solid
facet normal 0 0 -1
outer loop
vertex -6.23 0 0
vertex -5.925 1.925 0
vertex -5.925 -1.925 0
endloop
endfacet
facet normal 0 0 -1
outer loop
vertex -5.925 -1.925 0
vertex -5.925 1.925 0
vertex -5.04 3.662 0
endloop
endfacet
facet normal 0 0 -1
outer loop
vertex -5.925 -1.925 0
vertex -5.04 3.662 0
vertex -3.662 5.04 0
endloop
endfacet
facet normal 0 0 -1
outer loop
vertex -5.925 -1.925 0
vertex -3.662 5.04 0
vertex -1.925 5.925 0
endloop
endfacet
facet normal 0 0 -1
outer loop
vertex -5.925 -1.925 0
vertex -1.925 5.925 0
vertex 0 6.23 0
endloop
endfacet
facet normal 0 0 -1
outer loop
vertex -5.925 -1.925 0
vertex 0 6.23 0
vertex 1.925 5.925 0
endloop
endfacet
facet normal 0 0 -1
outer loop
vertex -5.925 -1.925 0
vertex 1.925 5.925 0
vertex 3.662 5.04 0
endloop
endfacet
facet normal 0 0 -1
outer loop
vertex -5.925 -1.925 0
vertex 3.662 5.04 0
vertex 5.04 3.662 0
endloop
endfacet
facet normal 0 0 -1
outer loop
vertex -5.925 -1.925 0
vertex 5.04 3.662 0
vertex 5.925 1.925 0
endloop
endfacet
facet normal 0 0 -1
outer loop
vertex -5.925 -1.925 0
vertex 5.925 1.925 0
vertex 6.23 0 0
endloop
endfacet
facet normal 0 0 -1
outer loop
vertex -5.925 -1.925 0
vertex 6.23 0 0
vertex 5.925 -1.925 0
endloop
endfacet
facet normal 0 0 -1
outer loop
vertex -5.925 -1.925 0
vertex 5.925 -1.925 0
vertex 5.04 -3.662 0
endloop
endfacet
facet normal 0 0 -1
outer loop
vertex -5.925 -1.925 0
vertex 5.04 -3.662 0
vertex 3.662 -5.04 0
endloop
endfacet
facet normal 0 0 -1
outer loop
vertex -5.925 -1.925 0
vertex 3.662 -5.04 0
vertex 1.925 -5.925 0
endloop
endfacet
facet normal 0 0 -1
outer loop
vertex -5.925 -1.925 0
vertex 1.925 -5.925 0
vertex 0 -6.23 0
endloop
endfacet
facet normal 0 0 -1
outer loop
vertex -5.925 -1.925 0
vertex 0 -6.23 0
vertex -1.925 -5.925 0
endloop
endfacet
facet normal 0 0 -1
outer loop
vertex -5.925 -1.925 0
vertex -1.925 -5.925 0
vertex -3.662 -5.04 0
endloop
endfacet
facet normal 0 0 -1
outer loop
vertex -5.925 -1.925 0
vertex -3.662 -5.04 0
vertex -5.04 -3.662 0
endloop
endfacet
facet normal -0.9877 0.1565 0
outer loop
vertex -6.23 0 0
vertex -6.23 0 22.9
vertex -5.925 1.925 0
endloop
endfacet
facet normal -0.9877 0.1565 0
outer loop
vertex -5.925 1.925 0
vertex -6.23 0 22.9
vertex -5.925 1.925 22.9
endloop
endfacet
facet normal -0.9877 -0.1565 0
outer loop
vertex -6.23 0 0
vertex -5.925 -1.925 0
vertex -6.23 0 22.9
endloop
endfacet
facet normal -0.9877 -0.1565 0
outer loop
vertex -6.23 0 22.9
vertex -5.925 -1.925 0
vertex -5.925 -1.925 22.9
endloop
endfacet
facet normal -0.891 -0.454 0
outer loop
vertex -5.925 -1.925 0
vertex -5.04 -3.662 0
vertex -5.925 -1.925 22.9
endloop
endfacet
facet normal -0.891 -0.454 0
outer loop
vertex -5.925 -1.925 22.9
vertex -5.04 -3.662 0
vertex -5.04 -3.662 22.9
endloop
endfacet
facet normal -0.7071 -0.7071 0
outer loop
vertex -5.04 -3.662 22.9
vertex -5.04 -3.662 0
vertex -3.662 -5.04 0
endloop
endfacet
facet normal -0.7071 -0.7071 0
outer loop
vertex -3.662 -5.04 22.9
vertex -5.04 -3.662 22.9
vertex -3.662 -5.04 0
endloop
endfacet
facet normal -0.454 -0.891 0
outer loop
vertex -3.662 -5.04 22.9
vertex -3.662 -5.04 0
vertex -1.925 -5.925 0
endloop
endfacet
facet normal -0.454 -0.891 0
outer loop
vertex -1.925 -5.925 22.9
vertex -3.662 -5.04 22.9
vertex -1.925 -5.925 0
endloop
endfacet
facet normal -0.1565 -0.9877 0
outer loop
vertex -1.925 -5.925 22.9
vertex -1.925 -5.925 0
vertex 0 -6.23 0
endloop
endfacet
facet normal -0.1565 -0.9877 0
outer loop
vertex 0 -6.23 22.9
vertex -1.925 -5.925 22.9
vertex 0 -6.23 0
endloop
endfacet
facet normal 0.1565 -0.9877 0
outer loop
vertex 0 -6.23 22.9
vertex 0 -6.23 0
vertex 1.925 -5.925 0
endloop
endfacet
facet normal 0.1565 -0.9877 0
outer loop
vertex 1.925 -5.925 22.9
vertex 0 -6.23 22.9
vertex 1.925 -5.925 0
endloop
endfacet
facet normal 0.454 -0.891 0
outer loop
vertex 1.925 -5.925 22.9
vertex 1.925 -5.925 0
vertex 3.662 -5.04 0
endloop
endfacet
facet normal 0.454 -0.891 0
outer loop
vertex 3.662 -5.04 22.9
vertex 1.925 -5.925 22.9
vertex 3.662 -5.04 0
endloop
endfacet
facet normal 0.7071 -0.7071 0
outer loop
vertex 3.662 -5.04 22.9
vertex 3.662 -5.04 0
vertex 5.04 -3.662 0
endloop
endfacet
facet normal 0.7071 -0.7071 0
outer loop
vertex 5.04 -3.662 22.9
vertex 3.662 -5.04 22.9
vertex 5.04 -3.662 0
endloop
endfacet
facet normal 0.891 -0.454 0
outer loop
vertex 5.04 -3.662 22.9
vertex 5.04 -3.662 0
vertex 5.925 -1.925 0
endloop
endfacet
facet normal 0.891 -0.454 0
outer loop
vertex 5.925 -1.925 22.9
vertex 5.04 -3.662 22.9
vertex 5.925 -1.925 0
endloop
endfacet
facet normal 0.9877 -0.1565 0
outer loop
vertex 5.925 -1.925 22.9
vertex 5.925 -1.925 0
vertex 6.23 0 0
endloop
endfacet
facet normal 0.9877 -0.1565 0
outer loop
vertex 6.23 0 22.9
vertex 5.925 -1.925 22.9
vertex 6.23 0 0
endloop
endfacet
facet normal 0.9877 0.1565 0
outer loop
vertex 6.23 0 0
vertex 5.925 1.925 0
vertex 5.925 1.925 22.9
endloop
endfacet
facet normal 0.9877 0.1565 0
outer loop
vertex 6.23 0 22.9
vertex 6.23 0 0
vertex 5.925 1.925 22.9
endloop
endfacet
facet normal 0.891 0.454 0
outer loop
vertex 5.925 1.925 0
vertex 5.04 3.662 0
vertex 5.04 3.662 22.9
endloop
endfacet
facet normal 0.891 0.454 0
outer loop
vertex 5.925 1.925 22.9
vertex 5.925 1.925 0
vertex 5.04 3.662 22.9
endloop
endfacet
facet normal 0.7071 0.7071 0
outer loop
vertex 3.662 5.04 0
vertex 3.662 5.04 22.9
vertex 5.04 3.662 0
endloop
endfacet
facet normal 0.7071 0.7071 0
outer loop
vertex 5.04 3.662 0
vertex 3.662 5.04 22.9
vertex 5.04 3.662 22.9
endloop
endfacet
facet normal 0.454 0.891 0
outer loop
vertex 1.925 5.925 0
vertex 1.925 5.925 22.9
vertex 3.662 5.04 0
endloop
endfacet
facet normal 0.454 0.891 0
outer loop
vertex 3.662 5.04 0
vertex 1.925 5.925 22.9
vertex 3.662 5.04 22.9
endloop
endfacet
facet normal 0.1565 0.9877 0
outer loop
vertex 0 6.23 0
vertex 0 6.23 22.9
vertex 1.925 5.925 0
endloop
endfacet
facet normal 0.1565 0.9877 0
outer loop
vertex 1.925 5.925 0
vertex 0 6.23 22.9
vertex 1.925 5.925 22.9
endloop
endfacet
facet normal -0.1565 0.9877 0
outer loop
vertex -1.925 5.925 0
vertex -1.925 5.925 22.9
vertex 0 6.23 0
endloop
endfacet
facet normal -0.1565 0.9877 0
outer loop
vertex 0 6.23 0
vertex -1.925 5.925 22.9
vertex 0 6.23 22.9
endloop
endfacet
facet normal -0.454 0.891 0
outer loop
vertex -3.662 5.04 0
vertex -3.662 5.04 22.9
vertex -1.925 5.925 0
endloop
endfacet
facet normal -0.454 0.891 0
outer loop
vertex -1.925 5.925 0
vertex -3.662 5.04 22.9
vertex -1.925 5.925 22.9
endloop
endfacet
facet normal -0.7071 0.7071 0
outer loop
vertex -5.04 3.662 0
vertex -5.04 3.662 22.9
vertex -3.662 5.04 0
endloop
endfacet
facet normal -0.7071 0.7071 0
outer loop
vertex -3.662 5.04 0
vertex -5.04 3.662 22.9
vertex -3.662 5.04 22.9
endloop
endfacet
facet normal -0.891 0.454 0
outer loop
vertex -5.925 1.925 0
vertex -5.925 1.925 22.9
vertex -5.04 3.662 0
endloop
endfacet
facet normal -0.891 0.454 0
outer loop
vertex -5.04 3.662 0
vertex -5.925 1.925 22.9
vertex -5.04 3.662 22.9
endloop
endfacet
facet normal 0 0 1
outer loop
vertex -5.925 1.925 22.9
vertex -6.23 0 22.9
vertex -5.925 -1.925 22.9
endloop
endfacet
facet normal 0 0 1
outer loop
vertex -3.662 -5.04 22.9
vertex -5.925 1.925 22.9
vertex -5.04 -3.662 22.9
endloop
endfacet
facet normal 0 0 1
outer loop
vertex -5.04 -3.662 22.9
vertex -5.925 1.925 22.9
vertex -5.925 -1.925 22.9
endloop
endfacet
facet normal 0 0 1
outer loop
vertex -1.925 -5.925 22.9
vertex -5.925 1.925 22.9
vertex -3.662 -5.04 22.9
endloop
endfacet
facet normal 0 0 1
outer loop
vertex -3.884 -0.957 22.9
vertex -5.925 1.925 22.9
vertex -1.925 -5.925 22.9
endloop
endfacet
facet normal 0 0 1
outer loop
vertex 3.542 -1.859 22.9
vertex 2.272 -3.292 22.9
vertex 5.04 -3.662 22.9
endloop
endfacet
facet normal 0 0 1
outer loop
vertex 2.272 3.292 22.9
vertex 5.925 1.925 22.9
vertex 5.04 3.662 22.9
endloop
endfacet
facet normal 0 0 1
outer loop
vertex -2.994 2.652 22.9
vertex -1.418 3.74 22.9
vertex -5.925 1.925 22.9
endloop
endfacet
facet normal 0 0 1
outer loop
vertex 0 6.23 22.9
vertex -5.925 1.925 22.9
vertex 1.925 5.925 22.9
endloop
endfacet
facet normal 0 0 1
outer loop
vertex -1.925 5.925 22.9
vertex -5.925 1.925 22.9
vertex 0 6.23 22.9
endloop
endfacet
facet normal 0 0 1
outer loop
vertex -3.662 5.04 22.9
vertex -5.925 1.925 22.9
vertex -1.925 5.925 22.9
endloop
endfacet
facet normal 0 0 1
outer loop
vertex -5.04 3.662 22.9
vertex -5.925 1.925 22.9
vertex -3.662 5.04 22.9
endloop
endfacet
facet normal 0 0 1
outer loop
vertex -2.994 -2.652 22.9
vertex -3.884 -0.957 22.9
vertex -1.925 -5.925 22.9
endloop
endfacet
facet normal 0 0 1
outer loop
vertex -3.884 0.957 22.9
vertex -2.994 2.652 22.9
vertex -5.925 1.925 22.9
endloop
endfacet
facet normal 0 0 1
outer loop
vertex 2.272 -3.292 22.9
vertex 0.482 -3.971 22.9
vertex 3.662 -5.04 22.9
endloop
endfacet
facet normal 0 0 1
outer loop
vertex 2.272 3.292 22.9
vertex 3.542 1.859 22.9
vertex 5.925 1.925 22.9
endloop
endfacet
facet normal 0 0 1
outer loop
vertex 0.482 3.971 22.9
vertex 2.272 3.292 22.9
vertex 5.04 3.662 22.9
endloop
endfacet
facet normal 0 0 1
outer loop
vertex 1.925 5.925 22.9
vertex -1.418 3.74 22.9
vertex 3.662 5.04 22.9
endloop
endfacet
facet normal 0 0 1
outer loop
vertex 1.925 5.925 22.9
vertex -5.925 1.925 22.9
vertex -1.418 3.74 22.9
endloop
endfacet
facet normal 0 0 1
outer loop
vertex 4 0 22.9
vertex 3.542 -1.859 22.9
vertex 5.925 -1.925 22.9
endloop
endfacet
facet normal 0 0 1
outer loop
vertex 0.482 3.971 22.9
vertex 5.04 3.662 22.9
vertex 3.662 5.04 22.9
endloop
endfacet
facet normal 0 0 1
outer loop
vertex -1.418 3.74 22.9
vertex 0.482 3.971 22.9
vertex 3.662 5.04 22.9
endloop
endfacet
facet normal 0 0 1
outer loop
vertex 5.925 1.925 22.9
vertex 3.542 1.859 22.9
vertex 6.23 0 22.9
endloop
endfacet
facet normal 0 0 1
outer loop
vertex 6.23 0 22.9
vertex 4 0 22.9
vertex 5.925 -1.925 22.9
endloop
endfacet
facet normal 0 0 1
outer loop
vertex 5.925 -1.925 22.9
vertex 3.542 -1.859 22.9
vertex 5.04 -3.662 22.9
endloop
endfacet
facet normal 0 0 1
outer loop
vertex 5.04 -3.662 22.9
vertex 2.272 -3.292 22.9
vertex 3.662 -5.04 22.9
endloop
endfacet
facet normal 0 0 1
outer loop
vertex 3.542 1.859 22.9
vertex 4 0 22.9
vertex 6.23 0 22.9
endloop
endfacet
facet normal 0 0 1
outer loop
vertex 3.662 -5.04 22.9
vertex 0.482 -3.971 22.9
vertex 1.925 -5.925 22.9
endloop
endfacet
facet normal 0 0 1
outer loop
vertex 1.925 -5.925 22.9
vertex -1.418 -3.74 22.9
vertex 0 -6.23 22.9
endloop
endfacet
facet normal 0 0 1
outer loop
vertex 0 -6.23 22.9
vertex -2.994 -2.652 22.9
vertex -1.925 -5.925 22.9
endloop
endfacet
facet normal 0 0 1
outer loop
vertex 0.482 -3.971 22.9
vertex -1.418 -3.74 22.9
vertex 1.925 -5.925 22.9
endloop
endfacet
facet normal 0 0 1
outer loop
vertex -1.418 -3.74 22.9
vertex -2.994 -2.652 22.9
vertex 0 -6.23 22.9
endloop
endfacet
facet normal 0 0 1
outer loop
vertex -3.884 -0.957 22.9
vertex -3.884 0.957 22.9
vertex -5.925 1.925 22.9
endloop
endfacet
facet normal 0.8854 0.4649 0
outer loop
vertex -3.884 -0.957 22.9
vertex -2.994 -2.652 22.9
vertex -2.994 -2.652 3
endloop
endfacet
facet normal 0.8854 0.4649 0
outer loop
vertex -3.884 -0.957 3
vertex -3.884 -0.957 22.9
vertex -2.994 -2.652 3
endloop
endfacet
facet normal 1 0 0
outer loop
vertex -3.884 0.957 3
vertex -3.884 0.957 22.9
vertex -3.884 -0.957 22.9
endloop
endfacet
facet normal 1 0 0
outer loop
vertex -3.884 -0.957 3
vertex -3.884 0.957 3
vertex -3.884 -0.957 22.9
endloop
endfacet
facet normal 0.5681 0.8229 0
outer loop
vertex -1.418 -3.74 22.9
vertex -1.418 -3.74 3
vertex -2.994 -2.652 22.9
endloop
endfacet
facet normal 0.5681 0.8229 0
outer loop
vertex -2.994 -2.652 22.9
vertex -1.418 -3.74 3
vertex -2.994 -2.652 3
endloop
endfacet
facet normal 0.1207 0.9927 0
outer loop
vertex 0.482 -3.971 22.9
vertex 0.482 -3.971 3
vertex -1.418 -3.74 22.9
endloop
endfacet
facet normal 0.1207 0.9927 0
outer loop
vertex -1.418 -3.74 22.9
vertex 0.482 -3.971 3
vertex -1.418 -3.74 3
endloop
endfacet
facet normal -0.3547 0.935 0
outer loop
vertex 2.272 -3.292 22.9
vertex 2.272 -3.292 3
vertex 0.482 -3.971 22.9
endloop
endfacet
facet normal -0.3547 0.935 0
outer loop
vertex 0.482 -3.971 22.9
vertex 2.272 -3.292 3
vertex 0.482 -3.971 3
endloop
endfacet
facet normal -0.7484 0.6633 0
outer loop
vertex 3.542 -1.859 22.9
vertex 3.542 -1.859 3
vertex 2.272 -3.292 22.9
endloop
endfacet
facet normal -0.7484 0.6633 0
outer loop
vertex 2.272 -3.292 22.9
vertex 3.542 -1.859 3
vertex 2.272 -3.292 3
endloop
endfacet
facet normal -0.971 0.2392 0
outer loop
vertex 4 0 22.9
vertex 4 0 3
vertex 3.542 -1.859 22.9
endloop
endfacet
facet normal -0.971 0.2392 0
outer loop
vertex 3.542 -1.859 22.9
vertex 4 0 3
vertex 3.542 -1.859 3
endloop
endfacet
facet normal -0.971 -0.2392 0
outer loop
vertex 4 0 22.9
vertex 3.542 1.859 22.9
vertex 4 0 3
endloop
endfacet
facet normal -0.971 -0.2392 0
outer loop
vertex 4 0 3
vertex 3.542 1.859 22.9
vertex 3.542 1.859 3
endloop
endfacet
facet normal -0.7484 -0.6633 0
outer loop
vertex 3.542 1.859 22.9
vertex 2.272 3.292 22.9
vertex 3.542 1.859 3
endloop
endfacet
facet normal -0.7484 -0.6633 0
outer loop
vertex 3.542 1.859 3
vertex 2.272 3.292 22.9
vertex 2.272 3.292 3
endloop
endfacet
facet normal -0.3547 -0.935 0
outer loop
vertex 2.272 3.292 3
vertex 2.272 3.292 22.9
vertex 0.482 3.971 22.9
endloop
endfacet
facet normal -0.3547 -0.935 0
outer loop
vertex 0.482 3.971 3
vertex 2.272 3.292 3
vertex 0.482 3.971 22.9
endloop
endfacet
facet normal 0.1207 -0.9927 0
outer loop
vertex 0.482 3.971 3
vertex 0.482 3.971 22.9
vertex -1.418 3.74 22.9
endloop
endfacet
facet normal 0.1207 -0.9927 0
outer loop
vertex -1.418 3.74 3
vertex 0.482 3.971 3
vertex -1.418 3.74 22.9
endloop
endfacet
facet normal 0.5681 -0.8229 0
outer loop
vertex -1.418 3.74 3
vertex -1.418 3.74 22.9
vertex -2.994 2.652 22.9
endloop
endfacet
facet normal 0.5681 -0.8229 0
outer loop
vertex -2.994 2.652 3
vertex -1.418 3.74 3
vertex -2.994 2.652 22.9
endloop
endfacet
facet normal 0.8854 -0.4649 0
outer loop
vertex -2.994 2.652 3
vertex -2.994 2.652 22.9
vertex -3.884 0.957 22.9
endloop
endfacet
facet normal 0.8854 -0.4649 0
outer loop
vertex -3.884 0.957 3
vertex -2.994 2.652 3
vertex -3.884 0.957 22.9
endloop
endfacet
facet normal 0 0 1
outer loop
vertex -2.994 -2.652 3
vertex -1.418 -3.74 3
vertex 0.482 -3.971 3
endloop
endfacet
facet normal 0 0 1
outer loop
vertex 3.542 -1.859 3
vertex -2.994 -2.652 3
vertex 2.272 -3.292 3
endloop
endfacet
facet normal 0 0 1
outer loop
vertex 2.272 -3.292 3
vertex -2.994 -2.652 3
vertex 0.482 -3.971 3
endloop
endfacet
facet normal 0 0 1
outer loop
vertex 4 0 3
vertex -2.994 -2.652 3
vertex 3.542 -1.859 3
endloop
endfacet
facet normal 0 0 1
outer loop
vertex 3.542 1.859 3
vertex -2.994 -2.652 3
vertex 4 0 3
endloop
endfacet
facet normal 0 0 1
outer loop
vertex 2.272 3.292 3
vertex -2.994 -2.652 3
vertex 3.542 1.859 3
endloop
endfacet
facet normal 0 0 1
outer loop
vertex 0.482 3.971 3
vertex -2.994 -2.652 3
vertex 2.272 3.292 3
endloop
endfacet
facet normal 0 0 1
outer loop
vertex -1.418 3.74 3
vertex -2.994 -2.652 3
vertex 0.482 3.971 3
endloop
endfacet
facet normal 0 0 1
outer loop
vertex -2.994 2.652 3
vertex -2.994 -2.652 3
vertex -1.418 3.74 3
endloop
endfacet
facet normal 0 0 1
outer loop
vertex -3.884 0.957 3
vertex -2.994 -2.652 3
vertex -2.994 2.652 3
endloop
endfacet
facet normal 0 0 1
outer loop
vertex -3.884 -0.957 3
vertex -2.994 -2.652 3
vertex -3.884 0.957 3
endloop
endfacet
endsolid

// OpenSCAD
outer_radius = 12.46/2;
inner_radius = 8/2;

difference() {
cylinder(h = 22.9, r1 = outer_radius, r2 = outer_radius);
translate([0, 0, 3])
	cylinder(h = 22.9, r1 = inner_radius, r2 = inner_radius);
}
